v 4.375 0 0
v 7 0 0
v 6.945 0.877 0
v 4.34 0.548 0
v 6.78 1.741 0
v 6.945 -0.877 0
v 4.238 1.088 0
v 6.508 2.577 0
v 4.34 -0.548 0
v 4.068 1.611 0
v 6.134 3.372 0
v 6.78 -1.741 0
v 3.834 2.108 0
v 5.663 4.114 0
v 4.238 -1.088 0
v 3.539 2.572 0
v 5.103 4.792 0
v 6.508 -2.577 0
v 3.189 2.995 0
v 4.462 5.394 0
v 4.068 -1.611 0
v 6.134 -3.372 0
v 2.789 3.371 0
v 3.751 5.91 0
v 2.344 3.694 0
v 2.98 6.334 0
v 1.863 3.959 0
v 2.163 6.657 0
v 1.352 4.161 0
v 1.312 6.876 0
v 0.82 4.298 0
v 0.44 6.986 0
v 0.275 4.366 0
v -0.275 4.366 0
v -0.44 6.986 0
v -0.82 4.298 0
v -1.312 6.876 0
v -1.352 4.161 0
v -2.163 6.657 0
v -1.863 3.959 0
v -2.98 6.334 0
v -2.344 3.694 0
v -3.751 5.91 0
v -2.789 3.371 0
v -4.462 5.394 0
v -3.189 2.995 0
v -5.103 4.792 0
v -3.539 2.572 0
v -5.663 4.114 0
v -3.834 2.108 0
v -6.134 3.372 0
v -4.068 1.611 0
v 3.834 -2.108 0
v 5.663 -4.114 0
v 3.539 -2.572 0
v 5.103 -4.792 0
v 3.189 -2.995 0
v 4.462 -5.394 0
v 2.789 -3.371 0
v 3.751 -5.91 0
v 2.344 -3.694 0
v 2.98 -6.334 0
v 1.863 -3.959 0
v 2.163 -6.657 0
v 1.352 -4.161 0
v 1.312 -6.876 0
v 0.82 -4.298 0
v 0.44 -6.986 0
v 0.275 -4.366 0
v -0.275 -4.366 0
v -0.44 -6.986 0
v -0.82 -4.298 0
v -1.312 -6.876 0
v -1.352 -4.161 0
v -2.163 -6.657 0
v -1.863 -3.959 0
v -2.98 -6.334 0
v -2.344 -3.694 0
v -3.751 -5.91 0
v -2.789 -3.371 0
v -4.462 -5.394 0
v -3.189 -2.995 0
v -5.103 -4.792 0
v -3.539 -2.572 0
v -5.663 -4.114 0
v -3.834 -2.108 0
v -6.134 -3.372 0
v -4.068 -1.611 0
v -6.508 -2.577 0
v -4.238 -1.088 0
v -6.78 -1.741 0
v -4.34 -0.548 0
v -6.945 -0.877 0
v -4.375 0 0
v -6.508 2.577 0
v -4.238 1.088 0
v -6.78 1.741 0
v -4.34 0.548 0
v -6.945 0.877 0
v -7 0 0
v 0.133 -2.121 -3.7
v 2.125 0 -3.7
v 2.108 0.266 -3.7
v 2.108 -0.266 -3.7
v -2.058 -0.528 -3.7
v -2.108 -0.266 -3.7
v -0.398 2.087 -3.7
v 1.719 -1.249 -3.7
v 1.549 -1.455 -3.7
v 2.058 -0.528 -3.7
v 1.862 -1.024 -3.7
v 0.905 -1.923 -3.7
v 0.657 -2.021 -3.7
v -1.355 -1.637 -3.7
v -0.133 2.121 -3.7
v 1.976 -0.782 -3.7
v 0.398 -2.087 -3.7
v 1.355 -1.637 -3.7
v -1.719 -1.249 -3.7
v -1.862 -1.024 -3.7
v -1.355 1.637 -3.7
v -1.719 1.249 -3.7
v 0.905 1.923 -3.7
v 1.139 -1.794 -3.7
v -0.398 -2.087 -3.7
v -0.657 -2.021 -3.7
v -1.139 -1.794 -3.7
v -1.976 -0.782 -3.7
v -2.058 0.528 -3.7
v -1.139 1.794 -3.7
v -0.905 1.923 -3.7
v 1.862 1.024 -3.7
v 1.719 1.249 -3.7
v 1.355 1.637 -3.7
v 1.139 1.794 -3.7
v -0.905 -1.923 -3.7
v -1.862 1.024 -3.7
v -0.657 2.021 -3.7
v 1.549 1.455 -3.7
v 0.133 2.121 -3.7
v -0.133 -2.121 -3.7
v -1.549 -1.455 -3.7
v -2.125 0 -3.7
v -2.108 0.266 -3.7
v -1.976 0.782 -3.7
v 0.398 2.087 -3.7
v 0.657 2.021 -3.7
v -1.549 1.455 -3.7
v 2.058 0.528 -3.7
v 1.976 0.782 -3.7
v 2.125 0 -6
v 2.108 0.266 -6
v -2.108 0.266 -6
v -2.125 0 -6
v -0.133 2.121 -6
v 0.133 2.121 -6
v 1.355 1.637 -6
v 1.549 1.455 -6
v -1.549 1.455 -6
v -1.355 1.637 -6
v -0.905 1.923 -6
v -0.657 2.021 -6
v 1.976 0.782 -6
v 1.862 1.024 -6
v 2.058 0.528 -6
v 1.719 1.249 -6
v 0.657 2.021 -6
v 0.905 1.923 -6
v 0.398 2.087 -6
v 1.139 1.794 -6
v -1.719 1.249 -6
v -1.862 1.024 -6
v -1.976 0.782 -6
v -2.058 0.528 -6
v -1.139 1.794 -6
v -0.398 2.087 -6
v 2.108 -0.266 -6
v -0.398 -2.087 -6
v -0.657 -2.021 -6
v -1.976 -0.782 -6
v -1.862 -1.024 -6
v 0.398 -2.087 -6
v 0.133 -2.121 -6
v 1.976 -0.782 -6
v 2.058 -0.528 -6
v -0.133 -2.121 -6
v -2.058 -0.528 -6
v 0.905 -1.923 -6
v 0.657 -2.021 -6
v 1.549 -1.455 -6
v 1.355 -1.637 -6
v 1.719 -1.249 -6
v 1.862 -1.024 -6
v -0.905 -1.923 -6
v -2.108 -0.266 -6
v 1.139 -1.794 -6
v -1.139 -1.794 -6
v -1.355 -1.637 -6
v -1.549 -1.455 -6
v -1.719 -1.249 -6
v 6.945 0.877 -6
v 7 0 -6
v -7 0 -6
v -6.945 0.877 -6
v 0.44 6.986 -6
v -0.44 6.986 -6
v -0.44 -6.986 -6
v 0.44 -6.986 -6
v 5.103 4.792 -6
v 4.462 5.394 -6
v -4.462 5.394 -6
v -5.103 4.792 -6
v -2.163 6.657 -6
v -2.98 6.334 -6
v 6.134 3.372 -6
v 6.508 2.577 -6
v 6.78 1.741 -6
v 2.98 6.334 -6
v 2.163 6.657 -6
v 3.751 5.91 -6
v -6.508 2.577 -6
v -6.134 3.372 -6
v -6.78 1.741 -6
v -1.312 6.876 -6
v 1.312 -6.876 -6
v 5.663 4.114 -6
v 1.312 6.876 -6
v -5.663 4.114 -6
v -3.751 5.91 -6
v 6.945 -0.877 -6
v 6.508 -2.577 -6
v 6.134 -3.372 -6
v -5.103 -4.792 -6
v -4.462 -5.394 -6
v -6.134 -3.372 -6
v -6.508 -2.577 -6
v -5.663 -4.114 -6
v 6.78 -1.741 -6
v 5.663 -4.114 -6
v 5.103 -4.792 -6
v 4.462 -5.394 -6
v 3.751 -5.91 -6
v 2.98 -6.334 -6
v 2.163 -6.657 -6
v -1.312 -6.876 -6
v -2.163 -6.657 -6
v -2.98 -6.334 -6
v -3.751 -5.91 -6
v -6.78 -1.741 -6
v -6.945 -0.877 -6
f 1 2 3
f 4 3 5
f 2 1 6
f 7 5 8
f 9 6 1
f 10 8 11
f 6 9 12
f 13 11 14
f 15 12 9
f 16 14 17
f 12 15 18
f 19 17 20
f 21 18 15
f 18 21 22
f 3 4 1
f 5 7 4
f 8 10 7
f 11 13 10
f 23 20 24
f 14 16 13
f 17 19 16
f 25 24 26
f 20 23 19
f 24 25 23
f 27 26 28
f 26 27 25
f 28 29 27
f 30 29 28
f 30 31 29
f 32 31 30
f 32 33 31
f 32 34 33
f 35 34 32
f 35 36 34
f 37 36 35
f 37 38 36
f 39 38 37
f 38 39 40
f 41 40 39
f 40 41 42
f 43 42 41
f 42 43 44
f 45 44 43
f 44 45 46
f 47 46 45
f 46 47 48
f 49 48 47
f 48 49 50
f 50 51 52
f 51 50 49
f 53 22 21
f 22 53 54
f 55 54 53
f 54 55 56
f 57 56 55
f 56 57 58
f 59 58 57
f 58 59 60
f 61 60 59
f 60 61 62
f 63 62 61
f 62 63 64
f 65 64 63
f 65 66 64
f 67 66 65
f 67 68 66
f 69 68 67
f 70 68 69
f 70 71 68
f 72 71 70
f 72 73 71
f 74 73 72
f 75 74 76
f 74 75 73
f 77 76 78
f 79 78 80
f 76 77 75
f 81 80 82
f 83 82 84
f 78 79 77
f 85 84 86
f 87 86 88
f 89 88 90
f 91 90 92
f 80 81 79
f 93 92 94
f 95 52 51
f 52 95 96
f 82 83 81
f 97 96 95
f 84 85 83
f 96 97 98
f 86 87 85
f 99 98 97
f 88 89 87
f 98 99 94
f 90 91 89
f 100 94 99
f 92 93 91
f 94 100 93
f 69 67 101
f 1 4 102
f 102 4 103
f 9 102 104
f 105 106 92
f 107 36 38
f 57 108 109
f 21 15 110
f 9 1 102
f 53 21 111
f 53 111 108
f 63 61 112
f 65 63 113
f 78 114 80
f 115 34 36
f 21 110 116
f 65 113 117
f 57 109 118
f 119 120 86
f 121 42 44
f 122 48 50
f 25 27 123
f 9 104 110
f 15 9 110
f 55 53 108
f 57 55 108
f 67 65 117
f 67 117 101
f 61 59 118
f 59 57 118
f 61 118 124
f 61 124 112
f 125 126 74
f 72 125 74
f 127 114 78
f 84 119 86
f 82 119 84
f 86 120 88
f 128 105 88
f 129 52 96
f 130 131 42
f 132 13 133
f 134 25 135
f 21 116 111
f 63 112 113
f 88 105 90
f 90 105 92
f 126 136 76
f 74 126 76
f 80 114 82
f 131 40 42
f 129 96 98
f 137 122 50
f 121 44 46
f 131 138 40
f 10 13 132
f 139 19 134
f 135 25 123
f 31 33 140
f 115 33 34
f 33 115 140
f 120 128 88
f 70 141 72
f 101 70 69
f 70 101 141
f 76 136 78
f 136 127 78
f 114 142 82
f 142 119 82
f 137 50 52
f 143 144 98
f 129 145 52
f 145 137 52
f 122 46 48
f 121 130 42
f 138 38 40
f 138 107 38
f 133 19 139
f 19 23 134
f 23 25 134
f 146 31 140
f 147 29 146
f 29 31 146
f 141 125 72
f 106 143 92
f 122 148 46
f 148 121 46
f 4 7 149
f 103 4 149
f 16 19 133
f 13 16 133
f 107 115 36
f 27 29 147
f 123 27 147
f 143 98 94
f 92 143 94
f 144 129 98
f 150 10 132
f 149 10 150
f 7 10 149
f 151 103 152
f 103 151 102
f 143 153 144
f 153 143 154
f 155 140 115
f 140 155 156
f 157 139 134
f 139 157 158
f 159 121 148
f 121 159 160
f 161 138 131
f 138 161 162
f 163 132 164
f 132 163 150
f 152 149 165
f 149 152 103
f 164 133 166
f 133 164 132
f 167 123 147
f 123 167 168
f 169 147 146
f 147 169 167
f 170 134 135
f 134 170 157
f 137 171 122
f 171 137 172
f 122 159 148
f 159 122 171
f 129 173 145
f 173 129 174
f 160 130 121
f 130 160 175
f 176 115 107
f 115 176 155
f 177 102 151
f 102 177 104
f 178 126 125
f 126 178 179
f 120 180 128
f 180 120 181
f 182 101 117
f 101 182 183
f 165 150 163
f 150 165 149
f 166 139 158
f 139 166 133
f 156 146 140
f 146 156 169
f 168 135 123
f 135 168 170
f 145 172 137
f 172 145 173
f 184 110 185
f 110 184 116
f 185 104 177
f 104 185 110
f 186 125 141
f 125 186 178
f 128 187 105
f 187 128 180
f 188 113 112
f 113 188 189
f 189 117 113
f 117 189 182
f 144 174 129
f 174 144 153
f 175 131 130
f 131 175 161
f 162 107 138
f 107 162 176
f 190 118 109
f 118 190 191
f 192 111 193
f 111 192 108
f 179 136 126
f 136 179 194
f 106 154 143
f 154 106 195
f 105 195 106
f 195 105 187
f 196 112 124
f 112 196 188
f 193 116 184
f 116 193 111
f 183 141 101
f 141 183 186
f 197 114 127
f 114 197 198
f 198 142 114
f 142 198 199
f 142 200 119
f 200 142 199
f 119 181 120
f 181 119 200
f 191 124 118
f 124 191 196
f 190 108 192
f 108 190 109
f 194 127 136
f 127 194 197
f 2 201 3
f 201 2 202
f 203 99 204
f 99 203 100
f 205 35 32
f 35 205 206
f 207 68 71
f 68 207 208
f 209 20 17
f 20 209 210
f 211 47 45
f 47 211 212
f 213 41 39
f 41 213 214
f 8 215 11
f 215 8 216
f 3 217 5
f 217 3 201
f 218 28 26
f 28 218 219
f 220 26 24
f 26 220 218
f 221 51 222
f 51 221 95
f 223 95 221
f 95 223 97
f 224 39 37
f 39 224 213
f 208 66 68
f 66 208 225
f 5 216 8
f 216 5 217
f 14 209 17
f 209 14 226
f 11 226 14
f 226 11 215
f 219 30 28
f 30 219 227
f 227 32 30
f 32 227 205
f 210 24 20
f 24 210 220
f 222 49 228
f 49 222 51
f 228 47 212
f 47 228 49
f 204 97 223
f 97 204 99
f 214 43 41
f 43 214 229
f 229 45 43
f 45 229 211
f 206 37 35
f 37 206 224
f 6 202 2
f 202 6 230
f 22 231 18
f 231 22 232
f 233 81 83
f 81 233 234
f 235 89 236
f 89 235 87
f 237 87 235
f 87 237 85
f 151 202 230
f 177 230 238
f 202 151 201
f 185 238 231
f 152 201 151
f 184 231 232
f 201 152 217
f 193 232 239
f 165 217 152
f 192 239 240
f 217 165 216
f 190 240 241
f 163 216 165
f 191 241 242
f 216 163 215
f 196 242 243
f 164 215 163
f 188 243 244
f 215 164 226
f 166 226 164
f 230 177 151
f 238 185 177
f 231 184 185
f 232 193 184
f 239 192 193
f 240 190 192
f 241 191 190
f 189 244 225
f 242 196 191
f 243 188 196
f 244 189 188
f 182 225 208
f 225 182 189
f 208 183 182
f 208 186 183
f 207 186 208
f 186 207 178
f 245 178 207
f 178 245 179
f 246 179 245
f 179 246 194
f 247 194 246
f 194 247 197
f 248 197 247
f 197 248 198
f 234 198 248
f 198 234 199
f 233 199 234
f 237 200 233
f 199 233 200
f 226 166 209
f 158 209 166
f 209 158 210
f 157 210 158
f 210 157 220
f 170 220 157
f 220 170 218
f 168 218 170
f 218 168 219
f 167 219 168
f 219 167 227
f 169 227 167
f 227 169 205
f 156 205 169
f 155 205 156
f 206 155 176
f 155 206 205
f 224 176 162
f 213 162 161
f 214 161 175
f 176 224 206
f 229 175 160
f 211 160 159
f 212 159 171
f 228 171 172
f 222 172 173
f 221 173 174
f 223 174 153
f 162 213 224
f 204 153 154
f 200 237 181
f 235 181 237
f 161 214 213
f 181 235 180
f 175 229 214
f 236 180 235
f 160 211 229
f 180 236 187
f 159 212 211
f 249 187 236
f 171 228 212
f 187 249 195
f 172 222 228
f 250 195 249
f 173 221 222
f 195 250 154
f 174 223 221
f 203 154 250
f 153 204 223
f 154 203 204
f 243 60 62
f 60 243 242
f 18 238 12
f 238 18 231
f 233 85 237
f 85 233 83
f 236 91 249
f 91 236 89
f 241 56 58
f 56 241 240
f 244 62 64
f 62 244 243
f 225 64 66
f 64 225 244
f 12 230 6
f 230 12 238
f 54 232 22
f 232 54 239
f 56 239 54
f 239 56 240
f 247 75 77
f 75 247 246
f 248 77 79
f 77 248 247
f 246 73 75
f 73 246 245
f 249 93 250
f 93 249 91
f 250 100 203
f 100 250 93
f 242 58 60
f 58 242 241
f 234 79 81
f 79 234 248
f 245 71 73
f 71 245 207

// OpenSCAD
$fn = 50;


difference() {
	union() {
		translate(v = [0, 0, -6.0000000000]) {
			cylinder(h = 6, r = 7.0000000000);
		}
	}
	union() {
		translate(v = [0, 0, 0]) {
			rotate(a = [0, 0, 0]) {
				difference() {
					union() {
						translate(v = [0, 0, -9.0000000000]) {
							cylinder(h = 9, r = 2.0000000000);
						}
						translate(v = [0, 0, -3.7000000000]) {
							cylinder(h = 3.7000000000, r1 = 2.1250000000, r2 = 4.3750000000);
						}
						translate(v = [0, 0, -9.0000000000]) {
							cylinder(h = 9, r = 2.1250000000);
						}
						translate(v = [0, 0, -9.0000000000]) {
							cylinder(h = 9, r = 2.0000000000);
						}
					}
					union();
				}
			}
		}
	}
}
